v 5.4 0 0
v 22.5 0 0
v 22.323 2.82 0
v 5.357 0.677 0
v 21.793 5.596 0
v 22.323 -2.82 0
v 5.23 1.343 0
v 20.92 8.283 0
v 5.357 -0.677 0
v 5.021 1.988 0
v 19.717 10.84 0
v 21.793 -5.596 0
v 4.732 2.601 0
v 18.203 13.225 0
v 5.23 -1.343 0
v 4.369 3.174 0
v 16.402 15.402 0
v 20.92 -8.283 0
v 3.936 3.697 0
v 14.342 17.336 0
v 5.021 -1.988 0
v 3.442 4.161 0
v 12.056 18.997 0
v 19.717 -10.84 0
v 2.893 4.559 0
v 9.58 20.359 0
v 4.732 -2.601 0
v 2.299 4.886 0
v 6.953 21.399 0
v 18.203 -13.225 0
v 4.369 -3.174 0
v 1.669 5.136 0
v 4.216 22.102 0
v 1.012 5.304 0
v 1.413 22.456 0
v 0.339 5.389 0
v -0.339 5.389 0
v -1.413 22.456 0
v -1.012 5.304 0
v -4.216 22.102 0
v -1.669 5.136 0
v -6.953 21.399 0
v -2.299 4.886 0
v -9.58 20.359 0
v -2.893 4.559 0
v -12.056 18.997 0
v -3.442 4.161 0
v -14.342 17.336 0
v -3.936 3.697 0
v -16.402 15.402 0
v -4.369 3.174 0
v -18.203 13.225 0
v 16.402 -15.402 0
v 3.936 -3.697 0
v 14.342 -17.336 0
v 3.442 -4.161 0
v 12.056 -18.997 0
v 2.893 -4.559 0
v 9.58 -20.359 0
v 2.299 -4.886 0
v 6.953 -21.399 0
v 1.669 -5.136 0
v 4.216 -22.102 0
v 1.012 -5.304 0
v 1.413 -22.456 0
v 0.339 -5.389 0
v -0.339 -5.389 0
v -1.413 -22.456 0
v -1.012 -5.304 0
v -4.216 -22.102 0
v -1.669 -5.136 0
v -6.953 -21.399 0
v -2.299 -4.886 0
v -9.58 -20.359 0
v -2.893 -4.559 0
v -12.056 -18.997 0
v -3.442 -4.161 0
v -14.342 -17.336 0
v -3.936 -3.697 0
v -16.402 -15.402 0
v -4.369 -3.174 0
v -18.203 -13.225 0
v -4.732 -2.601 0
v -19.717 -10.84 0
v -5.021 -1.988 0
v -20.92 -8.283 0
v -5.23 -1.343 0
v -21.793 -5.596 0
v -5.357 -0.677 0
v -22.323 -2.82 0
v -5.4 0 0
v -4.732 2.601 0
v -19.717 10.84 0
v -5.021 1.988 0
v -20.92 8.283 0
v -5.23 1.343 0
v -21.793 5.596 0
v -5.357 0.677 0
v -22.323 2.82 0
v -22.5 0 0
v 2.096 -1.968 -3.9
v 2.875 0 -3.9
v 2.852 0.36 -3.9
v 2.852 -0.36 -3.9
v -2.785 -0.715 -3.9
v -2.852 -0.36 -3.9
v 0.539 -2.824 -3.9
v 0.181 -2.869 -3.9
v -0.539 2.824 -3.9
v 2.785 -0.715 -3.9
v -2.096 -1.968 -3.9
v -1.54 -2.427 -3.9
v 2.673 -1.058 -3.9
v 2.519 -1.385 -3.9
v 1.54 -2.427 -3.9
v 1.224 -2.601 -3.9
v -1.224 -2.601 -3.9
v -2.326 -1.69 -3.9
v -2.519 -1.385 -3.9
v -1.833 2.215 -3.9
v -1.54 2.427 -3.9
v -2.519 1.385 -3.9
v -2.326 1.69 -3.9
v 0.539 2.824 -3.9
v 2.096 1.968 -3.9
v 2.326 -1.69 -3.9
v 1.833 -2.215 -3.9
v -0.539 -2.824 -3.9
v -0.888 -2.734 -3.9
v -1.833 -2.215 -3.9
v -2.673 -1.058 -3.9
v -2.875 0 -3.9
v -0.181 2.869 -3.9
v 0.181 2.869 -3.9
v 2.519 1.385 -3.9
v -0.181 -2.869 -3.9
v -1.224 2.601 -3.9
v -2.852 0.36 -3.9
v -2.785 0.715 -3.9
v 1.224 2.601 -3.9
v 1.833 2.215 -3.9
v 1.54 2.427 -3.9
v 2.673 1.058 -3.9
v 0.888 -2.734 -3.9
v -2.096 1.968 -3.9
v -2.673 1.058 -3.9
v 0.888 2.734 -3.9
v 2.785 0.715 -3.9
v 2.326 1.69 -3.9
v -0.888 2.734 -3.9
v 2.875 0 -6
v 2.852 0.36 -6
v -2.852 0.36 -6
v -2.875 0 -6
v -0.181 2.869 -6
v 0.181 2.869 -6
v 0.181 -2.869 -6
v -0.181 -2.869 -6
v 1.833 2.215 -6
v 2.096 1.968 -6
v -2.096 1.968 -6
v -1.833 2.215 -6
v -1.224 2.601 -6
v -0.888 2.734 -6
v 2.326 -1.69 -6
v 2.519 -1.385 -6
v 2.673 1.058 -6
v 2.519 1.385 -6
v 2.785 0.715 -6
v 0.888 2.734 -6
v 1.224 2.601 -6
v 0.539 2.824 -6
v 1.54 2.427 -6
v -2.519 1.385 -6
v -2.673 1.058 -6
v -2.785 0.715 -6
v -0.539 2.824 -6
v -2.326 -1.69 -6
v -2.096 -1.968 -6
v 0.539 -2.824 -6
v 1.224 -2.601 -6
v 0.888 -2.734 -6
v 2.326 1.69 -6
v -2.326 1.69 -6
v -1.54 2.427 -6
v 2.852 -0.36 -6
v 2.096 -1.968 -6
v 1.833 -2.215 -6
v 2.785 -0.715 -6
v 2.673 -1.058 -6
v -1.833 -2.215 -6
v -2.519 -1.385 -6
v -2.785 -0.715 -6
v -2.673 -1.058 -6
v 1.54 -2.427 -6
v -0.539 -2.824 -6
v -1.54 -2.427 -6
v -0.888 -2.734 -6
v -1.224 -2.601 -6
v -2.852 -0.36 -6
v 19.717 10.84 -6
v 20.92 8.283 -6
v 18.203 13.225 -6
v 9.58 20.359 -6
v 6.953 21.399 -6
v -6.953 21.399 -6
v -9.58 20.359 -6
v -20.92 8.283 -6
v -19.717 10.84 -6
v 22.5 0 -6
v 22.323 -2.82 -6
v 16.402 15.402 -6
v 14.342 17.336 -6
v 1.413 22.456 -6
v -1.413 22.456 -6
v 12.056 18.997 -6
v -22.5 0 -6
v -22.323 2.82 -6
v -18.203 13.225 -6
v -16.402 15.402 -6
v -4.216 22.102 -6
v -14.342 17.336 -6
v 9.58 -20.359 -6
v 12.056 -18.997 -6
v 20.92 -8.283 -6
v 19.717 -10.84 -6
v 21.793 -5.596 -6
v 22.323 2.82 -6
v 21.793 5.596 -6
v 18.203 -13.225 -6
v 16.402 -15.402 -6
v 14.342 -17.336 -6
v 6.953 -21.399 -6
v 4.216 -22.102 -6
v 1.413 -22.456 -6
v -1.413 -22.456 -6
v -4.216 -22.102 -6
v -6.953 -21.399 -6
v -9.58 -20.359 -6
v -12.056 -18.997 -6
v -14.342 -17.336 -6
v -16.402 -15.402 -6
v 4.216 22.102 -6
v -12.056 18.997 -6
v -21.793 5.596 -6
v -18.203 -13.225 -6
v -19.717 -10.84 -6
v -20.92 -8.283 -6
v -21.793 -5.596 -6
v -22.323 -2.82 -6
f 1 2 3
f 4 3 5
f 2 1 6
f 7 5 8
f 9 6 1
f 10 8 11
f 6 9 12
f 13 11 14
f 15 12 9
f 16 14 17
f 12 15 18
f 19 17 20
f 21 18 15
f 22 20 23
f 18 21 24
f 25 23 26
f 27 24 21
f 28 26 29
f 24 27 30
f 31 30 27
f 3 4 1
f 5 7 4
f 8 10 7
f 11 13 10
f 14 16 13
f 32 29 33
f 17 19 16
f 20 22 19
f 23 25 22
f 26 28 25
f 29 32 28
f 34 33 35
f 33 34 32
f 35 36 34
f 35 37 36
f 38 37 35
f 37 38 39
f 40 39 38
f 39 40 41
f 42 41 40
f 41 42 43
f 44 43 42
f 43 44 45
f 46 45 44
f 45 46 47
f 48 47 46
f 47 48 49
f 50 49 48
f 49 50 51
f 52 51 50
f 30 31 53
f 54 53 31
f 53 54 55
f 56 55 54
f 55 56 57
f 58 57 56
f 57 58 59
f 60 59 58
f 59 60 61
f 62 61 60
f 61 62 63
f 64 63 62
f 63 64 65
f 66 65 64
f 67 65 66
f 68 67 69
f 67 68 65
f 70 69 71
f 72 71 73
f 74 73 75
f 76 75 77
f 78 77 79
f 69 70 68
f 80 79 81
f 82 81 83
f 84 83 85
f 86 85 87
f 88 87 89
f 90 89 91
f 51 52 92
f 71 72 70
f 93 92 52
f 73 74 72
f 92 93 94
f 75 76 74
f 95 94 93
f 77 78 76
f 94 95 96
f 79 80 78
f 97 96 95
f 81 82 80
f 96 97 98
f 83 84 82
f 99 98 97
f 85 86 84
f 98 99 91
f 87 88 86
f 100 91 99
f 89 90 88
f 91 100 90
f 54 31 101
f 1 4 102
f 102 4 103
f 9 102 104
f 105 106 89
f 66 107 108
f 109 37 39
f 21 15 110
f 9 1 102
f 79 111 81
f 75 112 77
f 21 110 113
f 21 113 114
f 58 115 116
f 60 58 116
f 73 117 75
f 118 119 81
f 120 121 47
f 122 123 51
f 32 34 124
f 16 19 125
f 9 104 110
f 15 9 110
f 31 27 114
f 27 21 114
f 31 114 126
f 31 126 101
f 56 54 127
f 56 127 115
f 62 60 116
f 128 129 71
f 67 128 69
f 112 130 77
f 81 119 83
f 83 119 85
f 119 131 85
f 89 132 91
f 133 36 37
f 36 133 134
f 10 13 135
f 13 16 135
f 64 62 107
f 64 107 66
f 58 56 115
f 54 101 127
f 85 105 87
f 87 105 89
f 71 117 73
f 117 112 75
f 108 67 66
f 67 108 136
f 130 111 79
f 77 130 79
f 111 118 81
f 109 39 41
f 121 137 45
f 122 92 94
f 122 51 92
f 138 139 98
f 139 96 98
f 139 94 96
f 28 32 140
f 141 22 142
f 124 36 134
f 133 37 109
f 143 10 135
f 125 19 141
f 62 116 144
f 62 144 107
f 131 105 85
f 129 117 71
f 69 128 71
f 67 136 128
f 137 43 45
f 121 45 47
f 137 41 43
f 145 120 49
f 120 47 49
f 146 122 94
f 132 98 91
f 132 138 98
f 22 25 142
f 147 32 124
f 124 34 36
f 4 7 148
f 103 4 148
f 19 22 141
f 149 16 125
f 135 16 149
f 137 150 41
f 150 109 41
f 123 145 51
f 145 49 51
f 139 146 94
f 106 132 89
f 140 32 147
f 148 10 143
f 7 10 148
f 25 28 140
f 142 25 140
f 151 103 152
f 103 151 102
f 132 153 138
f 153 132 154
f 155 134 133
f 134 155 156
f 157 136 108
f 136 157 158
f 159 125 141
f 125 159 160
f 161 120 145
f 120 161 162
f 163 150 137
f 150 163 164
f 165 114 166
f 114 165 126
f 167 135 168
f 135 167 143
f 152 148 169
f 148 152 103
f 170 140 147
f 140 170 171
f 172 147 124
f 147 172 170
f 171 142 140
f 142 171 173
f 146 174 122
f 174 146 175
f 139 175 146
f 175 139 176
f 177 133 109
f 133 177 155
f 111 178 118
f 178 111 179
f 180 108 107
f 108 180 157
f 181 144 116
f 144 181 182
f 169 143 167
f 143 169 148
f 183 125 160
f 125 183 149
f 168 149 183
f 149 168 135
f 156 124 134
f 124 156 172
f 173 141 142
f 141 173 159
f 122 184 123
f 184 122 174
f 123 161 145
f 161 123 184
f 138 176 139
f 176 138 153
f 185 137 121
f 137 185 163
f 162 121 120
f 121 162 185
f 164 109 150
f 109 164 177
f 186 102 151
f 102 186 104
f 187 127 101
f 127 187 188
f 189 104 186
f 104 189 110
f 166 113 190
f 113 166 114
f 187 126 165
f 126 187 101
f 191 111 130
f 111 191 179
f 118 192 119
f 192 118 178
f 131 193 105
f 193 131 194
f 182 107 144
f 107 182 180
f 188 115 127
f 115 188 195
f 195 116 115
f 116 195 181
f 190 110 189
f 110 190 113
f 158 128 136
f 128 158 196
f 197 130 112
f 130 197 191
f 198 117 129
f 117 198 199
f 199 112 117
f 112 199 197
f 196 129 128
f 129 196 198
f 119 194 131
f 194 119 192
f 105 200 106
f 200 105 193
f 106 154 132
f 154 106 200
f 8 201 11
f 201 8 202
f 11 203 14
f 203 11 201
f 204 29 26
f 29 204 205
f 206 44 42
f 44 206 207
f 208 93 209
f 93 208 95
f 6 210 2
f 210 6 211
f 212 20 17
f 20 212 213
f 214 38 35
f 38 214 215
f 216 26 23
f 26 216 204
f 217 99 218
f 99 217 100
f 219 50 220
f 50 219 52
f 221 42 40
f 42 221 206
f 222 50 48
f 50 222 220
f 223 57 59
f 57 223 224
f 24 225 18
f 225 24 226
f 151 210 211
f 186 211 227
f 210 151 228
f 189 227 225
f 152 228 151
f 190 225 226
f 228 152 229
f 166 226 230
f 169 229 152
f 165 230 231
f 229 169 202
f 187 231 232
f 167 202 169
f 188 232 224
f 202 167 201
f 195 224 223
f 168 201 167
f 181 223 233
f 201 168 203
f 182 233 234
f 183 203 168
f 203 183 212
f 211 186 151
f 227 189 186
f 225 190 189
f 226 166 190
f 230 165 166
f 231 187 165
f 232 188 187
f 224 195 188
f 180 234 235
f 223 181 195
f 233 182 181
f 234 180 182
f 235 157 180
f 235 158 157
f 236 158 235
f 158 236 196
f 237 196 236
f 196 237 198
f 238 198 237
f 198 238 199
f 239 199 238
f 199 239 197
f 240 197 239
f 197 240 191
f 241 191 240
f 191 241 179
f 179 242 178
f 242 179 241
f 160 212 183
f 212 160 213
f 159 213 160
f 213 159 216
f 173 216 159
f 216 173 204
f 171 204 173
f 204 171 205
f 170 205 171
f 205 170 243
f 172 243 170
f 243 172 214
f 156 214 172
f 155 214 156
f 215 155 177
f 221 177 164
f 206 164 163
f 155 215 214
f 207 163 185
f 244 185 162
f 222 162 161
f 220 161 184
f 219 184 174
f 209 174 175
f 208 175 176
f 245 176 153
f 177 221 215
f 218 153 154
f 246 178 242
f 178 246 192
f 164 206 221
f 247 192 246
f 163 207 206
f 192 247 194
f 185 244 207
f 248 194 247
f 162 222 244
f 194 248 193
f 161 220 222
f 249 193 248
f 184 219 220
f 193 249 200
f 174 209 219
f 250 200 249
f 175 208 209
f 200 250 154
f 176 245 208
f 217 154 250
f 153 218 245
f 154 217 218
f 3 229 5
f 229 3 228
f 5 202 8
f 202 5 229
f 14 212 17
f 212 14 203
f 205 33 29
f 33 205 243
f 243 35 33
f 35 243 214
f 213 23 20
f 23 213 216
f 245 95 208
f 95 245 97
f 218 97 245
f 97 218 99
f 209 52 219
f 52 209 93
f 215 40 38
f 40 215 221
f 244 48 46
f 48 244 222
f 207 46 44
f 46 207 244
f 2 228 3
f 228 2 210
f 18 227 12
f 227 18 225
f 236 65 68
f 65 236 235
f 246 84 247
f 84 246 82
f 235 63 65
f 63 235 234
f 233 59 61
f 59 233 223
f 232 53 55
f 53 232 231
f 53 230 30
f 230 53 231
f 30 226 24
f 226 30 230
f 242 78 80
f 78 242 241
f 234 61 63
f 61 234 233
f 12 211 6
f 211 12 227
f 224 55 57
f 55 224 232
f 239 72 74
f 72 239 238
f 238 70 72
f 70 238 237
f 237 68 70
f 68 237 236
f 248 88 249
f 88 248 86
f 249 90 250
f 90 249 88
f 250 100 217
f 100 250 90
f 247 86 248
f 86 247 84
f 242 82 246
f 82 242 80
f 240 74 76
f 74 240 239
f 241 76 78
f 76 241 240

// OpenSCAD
$fn = 50;


difference() {
	union() {
		translate(v = [0, 0, -6.0000000000]) {
			cylinder(h = 6, r = 22.5000000000);
		}
	}
	union() {
		translate(v = [0, 0, 0]) {
			rotate(a = [0, 0, 0]) {
				difference() {
					union() {
						translate(v = [0, 0, -9.0000000000]) {
							cylinder(h = 9, r = 2.6000000000);
						}
						translate(v = [0, 0, -3.9000000000]) {
							cylinder(h = 3.9000000000, r1 = 2.8750000000, r2 = 5.4000000000);
						}
						translate(v = [0, 0, -9.0000000000]) {
							cylinder(h = 9, r = 2.8750000000);
						}
						translate(v = [0, 0, -9.0000000000]) {
							cylinder(h = 9, r = 2.6000000000);
						}
					}
					union();
				}
			}
		}
	}
}
